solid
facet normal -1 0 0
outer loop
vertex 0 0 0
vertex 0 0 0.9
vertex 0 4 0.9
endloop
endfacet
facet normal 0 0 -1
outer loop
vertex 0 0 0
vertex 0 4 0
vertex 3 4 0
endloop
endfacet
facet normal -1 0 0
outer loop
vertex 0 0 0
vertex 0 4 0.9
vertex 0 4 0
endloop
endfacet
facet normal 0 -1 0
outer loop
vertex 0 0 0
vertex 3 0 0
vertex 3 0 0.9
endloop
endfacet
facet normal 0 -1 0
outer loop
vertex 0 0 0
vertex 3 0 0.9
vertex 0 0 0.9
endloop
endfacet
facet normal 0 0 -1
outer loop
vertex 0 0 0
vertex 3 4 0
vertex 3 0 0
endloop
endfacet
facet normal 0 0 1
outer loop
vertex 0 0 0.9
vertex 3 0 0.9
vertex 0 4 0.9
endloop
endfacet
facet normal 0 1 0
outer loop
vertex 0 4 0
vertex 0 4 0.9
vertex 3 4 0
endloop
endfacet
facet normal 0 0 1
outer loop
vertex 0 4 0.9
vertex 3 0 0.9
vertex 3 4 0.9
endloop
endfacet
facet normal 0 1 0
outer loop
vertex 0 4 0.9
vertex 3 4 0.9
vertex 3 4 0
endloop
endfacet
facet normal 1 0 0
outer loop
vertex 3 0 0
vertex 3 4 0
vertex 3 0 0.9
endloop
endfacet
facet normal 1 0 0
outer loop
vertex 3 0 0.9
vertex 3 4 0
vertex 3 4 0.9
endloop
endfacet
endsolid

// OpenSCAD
/* Warning, this is a very basic generator with a lot of approximation 
input data : [VQFN, NVA, 3x4x0.9mm, 24, , B, C04-01212B]
generated by com.zoubworld.electronics.cad.model3d.Basic
Date : Sun Feb 15 10:50:49 CET 2026
*/

//body
color("black")
translate([0,0,0])
cube([3.0,4.0,0.9], center=false);
